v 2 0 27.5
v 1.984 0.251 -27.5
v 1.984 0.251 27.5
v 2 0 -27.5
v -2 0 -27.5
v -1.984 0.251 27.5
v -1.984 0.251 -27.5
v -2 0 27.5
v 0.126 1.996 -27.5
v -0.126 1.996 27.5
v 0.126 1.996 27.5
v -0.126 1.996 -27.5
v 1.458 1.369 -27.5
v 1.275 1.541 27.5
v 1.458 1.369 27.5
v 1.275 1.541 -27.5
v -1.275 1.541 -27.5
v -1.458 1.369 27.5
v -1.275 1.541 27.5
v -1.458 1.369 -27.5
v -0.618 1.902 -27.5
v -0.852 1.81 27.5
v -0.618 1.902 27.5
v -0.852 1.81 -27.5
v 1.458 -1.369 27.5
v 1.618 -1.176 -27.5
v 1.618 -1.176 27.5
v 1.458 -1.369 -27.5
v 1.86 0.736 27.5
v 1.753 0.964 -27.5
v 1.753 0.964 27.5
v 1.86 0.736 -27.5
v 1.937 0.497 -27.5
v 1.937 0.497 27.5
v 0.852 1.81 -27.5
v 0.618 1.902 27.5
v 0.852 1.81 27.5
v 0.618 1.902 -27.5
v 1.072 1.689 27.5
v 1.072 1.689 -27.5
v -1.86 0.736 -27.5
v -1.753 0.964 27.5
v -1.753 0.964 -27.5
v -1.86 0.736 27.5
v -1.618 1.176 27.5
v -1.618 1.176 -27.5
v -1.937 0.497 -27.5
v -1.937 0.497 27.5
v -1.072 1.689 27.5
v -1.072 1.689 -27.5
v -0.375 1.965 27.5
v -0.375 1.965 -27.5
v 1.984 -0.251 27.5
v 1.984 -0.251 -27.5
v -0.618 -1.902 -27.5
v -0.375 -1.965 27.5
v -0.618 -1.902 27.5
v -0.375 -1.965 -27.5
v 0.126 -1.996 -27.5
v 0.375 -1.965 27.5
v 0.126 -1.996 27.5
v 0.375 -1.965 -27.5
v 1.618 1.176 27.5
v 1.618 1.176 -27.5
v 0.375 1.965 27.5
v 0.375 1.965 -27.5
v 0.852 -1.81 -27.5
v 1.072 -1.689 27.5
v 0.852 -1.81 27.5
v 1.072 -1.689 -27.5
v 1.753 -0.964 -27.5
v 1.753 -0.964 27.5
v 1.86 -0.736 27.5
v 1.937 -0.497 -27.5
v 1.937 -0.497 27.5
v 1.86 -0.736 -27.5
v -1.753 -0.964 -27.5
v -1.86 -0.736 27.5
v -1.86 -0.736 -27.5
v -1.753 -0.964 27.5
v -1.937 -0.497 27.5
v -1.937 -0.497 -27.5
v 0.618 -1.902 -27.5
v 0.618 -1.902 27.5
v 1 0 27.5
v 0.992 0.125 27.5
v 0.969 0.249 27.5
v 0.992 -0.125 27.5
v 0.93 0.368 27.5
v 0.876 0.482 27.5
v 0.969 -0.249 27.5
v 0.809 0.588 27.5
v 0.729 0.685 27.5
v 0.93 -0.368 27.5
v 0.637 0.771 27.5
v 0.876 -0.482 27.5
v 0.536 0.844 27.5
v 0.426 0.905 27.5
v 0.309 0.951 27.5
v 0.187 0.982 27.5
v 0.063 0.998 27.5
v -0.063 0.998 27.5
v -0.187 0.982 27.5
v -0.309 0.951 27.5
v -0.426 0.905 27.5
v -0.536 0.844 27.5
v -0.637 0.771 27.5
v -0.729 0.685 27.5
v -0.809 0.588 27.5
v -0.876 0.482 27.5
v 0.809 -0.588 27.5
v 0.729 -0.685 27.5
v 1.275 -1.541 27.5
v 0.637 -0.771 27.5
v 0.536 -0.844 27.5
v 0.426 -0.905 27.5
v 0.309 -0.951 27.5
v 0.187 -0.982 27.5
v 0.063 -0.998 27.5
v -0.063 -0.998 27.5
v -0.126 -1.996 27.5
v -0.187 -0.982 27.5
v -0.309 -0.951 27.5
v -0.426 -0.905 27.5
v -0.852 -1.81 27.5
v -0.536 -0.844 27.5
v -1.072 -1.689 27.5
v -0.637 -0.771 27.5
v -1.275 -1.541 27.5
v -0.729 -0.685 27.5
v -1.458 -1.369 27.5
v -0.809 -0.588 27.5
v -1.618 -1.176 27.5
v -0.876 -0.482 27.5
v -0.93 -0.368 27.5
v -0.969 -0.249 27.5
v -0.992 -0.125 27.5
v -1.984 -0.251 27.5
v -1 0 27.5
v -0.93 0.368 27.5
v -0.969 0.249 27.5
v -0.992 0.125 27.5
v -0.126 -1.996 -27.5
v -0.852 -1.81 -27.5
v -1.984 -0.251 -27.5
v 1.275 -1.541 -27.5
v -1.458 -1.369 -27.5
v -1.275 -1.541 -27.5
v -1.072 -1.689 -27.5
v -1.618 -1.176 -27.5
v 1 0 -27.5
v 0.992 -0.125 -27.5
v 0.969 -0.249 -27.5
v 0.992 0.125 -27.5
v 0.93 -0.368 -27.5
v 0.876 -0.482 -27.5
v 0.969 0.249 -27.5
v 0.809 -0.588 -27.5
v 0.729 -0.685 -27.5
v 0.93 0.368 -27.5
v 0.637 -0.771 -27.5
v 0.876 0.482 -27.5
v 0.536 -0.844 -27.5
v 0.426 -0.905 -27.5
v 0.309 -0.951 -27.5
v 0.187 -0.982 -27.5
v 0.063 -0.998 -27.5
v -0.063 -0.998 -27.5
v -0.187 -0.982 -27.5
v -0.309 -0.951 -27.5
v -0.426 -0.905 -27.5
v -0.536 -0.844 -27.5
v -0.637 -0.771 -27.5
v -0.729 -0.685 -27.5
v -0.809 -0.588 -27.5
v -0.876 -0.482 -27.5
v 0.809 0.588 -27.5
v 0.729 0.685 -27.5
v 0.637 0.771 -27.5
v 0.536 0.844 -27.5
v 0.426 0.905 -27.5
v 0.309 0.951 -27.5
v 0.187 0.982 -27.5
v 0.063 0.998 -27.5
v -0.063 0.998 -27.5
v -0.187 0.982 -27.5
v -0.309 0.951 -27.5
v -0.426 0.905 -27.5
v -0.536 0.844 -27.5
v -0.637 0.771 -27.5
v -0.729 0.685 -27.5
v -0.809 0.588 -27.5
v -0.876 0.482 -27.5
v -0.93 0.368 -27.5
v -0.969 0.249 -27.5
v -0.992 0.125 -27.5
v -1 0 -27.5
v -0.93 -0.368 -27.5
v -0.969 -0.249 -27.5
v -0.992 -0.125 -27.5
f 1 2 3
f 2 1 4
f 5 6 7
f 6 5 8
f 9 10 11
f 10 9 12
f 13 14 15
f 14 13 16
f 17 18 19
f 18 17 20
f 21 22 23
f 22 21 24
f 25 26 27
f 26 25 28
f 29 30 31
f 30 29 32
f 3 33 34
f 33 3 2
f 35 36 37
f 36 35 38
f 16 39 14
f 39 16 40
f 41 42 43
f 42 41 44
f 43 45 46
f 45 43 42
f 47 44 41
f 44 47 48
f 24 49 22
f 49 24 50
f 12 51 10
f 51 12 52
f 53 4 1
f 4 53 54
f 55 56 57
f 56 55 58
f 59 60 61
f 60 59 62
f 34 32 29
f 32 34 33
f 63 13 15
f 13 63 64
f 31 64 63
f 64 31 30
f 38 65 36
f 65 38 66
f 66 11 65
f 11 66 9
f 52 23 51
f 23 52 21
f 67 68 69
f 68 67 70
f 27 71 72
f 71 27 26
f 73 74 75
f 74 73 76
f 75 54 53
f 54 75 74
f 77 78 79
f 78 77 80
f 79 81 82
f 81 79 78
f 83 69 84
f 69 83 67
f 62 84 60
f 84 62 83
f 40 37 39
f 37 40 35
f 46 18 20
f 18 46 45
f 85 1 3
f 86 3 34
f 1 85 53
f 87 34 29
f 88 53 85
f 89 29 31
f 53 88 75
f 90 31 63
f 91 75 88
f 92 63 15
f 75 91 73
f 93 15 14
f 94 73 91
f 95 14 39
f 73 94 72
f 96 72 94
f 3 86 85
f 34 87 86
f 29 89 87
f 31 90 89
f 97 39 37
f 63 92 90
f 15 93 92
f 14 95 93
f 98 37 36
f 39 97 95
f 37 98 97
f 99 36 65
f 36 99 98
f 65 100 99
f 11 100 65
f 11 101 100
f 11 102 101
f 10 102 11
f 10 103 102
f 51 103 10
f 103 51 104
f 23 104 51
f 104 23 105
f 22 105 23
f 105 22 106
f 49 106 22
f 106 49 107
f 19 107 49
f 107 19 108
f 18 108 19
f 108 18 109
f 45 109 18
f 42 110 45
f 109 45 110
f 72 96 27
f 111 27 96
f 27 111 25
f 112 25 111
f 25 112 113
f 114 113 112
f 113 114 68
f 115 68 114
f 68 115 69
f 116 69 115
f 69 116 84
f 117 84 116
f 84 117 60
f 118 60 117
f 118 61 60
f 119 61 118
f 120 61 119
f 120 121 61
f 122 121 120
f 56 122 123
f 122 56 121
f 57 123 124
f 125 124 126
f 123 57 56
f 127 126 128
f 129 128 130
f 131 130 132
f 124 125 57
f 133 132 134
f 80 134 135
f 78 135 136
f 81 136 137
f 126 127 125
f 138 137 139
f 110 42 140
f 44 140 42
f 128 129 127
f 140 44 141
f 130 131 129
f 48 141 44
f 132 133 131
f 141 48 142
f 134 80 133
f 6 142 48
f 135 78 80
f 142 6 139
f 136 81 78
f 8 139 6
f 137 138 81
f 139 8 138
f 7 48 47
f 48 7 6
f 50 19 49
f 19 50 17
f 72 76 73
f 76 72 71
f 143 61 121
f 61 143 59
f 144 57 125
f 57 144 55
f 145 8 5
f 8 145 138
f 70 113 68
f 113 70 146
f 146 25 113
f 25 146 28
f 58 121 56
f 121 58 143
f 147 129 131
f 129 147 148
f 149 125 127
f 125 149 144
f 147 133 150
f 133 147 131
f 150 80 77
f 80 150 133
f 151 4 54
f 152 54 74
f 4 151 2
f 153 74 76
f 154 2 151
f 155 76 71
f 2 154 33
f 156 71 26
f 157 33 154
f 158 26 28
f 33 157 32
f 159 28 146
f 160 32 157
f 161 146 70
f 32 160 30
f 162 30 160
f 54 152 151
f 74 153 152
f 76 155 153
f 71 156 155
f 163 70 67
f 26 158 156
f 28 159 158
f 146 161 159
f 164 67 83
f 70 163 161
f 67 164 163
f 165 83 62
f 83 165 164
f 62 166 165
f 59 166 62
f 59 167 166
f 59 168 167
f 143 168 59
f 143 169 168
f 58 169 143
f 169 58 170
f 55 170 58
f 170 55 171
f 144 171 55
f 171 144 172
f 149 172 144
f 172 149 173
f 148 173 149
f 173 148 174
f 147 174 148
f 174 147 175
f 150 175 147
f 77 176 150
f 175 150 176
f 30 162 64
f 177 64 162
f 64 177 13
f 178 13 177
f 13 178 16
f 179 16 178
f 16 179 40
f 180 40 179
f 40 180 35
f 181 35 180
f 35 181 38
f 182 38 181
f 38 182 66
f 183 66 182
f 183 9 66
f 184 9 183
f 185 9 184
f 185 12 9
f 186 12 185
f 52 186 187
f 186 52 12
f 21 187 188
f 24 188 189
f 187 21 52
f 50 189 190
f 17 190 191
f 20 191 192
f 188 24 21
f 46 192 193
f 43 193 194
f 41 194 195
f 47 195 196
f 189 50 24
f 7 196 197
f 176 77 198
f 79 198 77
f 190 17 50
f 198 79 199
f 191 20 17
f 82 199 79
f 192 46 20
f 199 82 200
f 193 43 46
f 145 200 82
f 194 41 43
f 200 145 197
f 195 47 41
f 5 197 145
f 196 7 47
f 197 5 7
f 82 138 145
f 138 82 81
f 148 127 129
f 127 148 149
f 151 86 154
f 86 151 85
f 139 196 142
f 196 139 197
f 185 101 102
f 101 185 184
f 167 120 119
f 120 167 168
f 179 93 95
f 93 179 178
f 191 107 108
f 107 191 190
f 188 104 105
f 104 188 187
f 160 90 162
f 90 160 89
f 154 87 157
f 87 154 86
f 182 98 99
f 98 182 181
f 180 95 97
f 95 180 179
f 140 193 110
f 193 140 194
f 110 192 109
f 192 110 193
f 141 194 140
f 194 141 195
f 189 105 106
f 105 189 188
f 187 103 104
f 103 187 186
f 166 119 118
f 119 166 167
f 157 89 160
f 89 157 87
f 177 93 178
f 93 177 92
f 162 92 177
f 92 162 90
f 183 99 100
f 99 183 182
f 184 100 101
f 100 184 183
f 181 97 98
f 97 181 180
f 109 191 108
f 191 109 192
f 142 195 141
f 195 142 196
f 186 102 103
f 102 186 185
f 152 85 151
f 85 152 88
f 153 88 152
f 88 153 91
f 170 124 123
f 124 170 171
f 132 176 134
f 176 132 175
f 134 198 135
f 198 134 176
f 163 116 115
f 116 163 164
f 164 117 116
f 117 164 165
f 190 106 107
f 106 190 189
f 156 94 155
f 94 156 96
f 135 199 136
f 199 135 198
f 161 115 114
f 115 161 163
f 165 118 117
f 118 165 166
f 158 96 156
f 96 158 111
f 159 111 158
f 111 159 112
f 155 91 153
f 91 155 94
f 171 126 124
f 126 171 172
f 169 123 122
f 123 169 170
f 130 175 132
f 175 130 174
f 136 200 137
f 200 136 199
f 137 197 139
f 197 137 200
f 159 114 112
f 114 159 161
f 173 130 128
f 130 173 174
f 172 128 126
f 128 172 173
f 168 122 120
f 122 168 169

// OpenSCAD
$fn = 50;


difference() {
	union() {
		translate(v = [0, 0, -27.5000000000]) {
			cylinder(h = 55, r = 2.0000000000);
		}
	}
	union() {
		translate(v = [0, 0, -100.0000000000]) {
			cylinder(h = 200, r = 1.0000000000);
		}
	}
}
